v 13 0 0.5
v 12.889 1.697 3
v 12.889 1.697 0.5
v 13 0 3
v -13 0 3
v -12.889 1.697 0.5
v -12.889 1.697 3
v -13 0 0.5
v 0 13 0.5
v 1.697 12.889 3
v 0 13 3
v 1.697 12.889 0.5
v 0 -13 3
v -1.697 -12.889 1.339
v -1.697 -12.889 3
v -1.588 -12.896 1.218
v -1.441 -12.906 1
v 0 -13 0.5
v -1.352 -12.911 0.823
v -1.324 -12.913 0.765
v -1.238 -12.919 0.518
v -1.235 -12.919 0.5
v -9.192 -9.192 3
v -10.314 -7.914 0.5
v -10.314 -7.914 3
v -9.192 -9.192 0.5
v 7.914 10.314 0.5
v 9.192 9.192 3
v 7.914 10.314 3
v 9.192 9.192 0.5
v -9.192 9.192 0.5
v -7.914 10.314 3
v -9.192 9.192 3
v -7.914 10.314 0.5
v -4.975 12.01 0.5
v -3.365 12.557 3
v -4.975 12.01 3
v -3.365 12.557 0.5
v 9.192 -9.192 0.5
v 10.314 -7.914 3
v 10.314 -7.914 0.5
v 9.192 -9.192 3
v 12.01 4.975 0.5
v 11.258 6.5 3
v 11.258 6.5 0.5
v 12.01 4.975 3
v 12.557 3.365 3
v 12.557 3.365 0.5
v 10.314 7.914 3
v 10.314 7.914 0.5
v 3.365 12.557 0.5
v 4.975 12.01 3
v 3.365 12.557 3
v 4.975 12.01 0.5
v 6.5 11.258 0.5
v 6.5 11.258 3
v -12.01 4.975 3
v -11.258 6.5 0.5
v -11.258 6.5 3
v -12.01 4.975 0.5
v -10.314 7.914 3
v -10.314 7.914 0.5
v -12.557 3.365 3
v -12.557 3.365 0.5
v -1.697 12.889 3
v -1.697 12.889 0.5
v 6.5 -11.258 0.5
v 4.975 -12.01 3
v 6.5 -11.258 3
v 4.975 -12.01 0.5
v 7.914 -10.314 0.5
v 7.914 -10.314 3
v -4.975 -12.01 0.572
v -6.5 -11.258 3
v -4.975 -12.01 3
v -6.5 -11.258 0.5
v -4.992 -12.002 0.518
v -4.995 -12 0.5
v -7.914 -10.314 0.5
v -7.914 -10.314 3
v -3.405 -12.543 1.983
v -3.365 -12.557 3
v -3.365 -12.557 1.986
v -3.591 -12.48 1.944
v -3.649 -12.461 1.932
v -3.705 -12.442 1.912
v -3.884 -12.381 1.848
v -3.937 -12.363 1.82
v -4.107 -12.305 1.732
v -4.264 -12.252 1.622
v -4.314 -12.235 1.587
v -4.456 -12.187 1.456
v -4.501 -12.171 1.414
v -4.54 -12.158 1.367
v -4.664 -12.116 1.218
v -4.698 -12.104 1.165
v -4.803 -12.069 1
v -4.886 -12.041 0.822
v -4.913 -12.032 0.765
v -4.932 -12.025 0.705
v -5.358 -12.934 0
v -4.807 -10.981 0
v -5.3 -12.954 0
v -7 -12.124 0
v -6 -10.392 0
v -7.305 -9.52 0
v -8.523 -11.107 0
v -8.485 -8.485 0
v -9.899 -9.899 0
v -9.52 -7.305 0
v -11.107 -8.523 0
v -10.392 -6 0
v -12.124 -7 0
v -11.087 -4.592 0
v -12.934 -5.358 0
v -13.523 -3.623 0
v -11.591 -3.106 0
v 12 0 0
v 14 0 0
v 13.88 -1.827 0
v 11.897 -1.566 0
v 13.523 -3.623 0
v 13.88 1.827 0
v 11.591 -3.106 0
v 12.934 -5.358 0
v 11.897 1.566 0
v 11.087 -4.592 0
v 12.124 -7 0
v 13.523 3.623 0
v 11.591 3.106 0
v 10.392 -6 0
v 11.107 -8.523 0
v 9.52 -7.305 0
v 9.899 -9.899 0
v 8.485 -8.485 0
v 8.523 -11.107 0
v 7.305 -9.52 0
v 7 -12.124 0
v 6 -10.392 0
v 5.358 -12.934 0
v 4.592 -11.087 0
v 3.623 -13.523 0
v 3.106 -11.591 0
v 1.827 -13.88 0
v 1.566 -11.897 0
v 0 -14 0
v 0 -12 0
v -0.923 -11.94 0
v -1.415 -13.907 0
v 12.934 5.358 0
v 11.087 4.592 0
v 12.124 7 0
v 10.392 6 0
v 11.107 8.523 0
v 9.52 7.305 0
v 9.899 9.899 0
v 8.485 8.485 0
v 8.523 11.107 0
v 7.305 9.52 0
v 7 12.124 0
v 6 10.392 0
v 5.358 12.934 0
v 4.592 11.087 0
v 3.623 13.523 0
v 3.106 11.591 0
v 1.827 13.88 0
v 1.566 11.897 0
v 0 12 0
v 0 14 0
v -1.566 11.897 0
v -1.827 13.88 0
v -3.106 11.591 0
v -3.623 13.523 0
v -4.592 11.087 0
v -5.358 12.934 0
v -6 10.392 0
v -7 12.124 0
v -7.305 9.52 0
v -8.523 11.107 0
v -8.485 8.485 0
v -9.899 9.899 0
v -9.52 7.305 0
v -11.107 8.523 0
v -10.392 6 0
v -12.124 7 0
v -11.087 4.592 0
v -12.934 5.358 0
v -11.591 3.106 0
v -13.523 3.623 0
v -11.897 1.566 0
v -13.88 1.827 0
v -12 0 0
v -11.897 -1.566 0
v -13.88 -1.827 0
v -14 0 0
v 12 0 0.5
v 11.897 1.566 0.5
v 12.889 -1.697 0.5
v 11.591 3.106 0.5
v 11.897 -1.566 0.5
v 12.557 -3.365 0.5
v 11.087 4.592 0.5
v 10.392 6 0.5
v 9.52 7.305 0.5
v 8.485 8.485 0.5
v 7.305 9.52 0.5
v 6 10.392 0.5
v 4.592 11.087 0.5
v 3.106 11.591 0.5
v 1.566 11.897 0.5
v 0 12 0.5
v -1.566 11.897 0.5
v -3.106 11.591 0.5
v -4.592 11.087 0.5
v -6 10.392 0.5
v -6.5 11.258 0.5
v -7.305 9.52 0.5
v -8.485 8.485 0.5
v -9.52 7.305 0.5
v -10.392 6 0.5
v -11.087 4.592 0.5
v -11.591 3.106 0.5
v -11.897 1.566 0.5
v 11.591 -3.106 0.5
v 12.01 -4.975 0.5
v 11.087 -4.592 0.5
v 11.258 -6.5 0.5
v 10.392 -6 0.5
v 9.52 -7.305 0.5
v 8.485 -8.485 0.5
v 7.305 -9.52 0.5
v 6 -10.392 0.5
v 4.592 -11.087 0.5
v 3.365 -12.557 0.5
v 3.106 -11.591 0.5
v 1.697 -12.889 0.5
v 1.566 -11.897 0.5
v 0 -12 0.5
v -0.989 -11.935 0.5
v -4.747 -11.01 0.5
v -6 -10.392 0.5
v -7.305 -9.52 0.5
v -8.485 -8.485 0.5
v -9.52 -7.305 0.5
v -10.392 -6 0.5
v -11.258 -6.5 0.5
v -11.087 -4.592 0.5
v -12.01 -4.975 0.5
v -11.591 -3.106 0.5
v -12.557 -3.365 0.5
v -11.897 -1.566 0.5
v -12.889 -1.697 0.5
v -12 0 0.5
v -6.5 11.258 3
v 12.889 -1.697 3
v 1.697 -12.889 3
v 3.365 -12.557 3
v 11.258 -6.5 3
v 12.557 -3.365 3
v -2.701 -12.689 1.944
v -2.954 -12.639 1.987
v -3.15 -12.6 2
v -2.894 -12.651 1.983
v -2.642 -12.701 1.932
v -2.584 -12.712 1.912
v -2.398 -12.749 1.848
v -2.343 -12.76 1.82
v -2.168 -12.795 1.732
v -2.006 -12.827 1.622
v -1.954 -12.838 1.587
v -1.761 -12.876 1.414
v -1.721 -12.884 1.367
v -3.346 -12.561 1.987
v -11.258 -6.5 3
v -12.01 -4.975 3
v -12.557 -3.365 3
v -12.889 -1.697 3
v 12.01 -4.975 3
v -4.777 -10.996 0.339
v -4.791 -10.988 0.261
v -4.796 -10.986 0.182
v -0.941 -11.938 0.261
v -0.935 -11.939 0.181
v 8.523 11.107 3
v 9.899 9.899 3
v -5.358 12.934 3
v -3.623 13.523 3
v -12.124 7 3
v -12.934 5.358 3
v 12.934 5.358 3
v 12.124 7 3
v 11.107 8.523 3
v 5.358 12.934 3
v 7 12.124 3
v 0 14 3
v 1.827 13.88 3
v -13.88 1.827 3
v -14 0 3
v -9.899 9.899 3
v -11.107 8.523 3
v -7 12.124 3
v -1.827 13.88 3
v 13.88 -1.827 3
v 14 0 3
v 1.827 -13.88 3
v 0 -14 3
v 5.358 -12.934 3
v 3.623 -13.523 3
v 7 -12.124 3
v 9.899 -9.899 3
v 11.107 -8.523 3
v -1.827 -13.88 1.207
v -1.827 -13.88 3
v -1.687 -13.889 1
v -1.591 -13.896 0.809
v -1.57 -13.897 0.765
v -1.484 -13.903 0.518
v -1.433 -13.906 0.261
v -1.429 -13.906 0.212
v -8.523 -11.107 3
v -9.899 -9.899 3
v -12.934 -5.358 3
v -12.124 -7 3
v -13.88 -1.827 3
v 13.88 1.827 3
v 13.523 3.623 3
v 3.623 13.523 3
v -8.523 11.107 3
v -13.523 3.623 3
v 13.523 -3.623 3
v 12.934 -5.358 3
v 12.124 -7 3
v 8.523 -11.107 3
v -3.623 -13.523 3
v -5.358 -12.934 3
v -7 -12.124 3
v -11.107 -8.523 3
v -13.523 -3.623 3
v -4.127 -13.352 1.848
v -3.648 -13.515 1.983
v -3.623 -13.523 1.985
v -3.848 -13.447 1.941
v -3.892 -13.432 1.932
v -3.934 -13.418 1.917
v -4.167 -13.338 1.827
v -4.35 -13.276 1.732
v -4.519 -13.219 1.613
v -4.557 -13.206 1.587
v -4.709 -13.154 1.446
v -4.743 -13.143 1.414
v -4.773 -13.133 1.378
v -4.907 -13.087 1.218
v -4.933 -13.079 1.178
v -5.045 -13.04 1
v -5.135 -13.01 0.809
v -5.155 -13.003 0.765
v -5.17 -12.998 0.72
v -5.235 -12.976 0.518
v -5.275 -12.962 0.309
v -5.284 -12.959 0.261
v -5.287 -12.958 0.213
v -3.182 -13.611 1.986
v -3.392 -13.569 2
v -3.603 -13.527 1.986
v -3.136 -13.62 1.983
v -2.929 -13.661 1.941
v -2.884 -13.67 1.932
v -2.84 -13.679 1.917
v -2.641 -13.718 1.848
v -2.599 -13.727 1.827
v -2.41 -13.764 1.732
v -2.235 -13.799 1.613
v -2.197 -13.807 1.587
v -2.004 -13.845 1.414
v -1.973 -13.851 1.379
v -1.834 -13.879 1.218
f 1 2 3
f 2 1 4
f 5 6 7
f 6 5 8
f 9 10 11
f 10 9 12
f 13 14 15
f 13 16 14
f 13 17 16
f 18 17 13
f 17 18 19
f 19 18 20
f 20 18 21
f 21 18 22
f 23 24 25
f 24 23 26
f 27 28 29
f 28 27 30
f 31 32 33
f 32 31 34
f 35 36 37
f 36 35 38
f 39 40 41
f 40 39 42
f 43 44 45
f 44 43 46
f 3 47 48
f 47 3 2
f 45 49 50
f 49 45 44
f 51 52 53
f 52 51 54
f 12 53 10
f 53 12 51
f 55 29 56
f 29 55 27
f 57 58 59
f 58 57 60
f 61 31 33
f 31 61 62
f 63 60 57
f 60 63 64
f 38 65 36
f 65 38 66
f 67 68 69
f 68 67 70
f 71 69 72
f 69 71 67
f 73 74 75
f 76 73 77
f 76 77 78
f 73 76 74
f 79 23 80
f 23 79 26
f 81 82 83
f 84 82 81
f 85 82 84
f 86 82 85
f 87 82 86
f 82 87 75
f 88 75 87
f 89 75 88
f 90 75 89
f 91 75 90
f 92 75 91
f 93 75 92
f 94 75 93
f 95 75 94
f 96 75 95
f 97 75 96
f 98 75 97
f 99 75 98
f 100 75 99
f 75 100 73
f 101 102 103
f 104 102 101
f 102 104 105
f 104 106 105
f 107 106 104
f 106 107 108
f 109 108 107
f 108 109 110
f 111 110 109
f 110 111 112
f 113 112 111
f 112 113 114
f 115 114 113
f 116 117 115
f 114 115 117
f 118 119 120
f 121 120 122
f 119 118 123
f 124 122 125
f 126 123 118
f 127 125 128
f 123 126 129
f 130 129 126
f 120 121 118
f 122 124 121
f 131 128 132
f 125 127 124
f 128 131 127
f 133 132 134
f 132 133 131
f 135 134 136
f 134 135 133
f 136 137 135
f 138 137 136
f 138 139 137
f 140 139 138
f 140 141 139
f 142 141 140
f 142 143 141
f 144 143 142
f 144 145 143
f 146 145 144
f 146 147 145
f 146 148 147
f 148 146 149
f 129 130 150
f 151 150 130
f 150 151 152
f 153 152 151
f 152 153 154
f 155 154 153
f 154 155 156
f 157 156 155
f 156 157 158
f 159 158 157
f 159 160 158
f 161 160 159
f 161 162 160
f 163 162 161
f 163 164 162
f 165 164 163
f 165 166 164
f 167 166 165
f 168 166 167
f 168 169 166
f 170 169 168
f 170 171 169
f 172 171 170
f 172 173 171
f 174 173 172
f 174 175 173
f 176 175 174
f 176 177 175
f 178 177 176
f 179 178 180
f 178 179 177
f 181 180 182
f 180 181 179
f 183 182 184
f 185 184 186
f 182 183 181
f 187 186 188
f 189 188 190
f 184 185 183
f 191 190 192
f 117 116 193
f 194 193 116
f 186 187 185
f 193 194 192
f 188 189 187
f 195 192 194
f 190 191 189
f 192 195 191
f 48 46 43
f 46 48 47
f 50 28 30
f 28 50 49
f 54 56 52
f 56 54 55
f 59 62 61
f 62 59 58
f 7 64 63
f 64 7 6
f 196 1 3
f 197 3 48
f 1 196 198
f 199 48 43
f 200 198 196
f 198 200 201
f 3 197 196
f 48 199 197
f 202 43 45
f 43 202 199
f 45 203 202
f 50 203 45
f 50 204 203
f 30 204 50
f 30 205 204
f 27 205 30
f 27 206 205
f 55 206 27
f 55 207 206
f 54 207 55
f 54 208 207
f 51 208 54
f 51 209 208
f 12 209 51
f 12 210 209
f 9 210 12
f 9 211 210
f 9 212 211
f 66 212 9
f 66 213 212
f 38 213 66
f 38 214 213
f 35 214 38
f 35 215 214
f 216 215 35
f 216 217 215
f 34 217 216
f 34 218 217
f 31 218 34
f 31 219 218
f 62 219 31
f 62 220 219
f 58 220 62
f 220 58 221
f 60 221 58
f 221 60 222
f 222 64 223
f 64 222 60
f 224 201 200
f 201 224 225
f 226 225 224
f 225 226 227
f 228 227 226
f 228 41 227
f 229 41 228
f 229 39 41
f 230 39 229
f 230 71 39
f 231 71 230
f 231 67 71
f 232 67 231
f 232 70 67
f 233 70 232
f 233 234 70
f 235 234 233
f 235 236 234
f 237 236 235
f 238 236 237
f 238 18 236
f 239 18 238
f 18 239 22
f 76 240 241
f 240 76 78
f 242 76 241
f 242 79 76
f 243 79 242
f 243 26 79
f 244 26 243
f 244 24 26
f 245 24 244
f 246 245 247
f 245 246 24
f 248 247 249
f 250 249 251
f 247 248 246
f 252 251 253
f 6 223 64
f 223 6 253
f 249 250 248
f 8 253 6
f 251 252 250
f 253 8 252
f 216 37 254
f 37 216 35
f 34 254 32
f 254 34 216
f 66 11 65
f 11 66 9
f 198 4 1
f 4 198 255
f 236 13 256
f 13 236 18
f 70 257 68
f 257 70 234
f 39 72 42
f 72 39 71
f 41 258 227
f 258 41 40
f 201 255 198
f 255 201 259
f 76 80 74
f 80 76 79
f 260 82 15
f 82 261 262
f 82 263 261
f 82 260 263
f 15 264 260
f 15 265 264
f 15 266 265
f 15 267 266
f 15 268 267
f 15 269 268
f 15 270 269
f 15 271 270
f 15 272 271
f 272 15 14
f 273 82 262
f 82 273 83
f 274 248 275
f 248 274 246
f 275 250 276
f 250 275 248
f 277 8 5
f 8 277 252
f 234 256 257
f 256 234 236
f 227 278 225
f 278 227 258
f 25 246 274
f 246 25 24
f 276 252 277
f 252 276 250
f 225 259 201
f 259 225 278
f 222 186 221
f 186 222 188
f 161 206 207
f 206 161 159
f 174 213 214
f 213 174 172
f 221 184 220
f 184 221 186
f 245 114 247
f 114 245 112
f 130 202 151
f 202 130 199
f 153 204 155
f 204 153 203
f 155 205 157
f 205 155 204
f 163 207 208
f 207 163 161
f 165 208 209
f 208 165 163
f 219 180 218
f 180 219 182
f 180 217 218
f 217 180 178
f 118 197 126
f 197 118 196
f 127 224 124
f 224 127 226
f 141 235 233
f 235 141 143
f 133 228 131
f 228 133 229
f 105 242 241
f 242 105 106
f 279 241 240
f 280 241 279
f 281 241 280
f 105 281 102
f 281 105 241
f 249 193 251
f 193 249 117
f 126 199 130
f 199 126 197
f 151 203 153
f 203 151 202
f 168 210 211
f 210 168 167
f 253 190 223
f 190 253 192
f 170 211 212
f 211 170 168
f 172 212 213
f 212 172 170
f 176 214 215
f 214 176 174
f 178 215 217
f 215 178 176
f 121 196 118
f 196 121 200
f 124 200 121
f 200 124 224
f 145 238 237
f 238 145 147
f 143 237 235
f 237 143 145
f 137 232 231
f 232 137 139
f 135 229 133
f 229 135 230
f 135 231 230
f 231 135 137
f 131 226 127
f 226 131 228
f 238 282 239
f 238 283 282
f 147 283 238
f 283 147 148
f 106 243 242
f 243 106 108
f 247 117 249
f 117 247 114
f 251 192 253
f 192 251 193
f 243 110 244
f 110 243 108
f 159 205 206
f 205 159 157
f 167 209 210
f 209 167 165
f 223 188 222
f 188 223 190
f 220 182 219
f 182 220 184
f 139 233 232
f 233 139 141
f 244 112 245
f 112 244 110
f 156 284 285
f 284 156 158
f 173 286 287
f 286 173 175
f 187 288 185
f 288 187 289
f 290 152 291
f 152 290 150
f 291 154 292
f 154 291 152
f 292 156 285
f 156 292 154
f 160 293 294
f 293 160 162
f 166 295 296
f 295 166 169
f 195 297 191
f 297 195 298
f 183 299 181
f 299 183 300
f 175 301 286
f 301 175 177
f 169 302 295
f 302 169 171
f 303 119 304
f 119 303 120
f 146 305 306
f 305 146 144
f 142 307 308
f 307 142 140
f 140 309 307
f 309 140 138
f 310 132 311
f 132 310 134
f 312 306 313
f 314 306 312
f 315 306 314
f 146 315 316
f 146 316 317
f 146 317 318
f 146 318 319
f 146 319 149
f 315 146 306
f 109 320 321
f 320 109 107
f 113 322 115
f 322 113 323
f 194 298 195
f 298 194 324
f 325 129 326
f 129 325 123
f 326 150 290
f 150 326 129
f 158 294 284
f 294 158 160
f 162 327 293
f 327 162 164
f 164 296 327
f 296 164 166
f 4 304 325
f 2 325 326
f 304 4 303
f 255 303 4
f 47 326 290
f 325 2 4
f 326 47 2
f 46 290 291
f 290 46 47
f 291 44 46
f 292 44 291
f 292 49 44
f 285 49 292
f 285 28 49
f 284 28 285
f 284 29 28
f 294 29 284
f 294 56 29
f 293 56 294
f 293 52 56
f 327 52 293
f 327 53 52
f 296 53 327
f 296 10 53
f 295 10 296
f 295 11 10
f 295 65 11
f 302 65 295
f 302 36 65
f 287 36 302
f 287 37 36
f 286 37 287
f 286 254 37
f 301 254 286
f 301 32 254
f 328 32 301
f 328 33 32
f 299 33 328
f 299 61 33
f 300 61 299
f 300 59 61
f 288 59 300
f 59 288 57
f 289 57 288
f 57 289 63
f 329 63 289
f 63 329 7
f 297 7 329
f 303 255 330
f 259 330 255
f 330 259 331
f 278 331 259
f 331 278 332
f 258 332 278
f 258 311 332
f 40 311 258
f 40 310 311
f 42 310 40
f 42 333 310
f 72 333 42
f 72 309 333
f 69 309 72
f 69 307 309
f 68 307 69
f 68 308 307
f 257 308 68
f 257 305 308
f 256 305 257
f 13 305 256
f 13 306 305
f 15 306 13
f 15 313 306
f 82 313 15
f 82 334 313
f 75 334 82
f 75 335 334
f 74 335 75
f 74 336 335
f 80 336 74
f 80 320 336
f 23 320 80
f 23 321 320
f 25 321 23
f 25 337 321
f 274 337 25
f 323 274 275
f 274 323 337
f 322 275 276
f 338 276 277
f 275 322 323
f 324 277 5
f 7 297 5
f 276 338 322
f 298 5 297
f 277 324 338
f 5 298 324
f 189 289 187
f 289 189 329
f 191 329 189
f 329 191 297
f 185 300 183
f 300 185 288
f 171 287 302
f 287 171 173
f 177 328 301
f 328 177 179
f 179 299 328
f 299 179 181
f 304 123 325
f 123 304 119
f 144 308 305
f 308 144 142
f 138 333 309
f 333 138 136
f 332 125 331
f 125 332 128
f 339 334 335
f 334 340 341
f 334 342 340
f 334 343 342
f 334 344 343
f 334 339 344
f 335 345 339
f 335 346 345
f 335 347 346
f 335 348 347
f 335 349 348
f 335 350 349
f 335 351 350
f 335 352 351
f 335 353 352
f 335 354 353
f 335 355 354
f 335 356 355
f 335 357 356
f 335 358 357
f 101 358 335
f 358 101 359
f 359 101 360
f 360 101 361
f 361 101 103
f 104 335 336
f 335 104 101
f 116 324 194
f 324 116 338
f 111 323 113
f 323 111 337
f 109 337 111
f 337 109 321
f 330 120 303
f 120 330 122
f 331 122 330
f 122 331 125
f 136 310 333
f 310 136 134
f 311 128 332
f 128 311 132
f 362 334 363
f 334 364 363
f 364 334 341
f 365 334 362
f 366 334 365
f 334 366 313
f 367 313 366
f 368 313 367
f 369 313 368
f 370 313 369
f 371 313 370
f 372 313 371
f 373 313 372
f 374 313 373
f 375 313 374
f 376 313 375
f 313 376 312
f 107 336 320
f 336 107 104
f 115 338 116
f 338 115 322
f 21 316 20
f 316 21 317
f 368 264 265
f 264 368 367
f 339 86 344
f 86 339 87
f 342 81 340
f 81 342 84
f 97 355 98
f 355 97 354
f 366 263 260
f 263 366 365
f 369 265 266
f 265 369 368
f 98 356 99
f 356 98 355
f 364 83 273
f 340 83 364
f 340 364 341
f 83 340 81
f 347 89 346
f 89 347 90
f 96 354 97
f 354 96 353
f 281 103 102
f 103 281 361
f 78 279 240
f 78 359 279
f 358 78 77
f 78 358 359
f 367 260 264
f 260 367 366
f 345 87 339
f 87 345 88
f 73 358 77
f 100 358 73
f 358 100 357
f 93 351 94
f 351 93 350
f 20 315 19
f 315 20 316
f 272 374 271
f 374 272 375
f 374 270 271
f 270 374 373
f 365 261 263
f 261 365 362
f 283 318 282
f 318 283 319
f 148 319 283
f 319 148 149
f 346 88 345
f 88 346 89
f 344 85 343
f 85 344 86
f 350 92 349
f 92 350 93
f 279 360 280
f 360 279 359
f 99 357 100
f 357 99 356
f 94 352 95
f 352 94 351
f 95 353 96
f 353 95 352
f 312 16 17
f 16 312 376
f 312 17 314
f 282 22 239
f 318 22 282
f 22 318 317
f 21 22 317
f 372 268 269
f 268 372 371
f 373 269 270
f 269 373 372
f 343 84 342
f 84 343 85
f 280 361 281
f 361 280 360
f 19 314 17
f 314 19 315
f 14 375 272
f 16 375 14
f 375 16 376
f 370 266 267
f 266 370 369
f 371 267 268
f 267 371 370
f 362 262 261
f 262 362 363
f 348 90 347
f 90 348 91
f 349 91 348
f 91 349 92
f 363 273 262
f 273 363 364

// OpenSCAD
// file: ../build_environments.scad
// build_environments.scad: modules to build level sections
//

module pool(diameter=10.0, wall_height=2.0, step_width=3.0, connections=[])
{
    difference() {
        union() {
        difference() {
            cylinder(h=0.5,r1=diameter+step_width,r2=diameter+step_width,$fn=48);
            translate([0,0,-0.1])
                cylinder(h=0.7,r1=diameter,r2=diameter,$fn=48);
        }
        difference() {
            cylinder(h=wall_height,r1=diameter+step_width+1.0,r2=diameter+step_width+1.0,$fn=48);
            translate([0,0,-0.1])
                cylinder(h=wall_height+0.2,r1=diameter+step_width,r2=diameter+step_width,$fn=48);
        }
        }
    
        for (c = connections)
        {
            rotate([0,90,0]) {
                angle = atan2(c[1],c[0]);
                rotate([-angle,0,0]) {
                    cylinder(h=diameter+5.0,r1=c[2],r2=c[2],$fn=48);
                }
            }
        }
    }
}

module straight(length=10.0, width=2.0, dy1=0.0, dy2=0.0, dz=0.0)
{
    dims = [0, 0, 0, 0, 0, (dz/length)];
    matrix = [
        [ 1, dims[0], dims[1], 0 ],
        [ dims[2], 1, dims[4], 0 ],
        [ dims[5], dims[3], 1, 0 ],
        [ 0, 0, 0, 1 ]
    ];
    multmatrix(matrix)
    difference() {
        translate([dy1,0,0])
        union() {
            rotate([0,90,0]) {
                difference() {
                    cylinder(h=(length-dy1-dy2),r1=width+1.0,r2=width+1.0,$fn=24);
                    translate([0,0,-0.1])
                        cylinder(h=(length-dy1-dy2+0.2),r1=width,r2=width,$fn=24);
                }
                difference() {
                    cylinder(h=1.0,r1=width+2.0,r2=width+2.0,$fn=24);
                    translate([0,0,-0.1])
                        cylinder(h=1.2,r1=width,r2=width,$fn=24);
                }
                translate([0,0,(length-dy1-dy2)-1.0]) {
                    difference() {
                        cylinder(h=1.0,r1=width+2.0,r2=width+2.0,$fn=24);
                        translate([0,0,-0.1])
                            cylinder(h=1.2,r1=width,r2=width,$fn=24);
                    }
                }
            }
        }
        translate([0,0,-(2*width+4.0)/2])
            cube([3*length,3*length,2*width+4.0],center=true);
    }
}

module curve(p0=[0,0], center=[0,0], dir=1, angle=0.0, width=2.0)
{
    radius = sqrt((p0[0]-center[0])*(p0[0]-center[0]) + (p0[1]-center[1])*(p0[1]-center[1]));
    if (dir == 0) {
        difference() {
            rotate([0,0,-90])
            difference() {
                rotate_extrude(angle = angle, convexity = 10, $fn=32)
                    translate([radius, 0, 0])
                        circle(r = width+1.0,$fn=24);
                rotate([0,0,-1.0])
                    rotate_extrude(angle = angle+2.0, convexity = 10, $fn=32)
                        translate([radius, 0, 0])
                            circle(r = width,$fn=24);
            }
            translate([0,0,-(2*width+4.0)/2])
                cube([5*radius,5*radius,2*width+4.0],center=true);
        }
    }
    else {
        difference() {
            rotate([0,0,90])
            difference() {
                rotate_extrude(angle = -angle, convexity = 10, $fn=32)
                    translate([radius, 0, 0])
                        circle(r = width+1.0,$fn=24);
                rotate([0,0,1.0])
                    rotate_extrude(angle = -angle-2.0, convexity = 10, $fn=32)
                        translate([radius, 0, 0])
                            circle(r = width,$fn=24);
            }
            translate([0,0,-(2*width+4.0)/2])
                cube([5*radius,5*radius,2*width+4.0],center=true);
        }
    }

}

// test pool
//pool(diameter=12.0000, wall_height=3.0000, step_width=3.0000, connections=[[0.0000,-26.0000,2.0000], [23.6074,0.0000,2.0000]]);

// test straight, slope
//straight(length=26.0000, width=2.0000, dy1=11.8322, dy2=6.7082, dz=0.0000);
//straight(length=29.1549, width=12.0000, dy1=0.0000, dy2=0.0000, dz=-15.0000);

// test curve
//curve(p0=[23.6074, 0.0000], center=[23.6074, 5.0000], dir=0, angle=60.1011, width=2.0000);
//curve(p0=[33.6426, 12.4219], center=[37.9771, 9.9295], dir=1, angle=120.4627, width=2.0000);
// main file
use <../build_environments.scad>;
pool(diameter=12.0000, wall_height=3.0000, step_width=1.0000, connections=[[-6.0000,-24.0000,2.0000]]);
